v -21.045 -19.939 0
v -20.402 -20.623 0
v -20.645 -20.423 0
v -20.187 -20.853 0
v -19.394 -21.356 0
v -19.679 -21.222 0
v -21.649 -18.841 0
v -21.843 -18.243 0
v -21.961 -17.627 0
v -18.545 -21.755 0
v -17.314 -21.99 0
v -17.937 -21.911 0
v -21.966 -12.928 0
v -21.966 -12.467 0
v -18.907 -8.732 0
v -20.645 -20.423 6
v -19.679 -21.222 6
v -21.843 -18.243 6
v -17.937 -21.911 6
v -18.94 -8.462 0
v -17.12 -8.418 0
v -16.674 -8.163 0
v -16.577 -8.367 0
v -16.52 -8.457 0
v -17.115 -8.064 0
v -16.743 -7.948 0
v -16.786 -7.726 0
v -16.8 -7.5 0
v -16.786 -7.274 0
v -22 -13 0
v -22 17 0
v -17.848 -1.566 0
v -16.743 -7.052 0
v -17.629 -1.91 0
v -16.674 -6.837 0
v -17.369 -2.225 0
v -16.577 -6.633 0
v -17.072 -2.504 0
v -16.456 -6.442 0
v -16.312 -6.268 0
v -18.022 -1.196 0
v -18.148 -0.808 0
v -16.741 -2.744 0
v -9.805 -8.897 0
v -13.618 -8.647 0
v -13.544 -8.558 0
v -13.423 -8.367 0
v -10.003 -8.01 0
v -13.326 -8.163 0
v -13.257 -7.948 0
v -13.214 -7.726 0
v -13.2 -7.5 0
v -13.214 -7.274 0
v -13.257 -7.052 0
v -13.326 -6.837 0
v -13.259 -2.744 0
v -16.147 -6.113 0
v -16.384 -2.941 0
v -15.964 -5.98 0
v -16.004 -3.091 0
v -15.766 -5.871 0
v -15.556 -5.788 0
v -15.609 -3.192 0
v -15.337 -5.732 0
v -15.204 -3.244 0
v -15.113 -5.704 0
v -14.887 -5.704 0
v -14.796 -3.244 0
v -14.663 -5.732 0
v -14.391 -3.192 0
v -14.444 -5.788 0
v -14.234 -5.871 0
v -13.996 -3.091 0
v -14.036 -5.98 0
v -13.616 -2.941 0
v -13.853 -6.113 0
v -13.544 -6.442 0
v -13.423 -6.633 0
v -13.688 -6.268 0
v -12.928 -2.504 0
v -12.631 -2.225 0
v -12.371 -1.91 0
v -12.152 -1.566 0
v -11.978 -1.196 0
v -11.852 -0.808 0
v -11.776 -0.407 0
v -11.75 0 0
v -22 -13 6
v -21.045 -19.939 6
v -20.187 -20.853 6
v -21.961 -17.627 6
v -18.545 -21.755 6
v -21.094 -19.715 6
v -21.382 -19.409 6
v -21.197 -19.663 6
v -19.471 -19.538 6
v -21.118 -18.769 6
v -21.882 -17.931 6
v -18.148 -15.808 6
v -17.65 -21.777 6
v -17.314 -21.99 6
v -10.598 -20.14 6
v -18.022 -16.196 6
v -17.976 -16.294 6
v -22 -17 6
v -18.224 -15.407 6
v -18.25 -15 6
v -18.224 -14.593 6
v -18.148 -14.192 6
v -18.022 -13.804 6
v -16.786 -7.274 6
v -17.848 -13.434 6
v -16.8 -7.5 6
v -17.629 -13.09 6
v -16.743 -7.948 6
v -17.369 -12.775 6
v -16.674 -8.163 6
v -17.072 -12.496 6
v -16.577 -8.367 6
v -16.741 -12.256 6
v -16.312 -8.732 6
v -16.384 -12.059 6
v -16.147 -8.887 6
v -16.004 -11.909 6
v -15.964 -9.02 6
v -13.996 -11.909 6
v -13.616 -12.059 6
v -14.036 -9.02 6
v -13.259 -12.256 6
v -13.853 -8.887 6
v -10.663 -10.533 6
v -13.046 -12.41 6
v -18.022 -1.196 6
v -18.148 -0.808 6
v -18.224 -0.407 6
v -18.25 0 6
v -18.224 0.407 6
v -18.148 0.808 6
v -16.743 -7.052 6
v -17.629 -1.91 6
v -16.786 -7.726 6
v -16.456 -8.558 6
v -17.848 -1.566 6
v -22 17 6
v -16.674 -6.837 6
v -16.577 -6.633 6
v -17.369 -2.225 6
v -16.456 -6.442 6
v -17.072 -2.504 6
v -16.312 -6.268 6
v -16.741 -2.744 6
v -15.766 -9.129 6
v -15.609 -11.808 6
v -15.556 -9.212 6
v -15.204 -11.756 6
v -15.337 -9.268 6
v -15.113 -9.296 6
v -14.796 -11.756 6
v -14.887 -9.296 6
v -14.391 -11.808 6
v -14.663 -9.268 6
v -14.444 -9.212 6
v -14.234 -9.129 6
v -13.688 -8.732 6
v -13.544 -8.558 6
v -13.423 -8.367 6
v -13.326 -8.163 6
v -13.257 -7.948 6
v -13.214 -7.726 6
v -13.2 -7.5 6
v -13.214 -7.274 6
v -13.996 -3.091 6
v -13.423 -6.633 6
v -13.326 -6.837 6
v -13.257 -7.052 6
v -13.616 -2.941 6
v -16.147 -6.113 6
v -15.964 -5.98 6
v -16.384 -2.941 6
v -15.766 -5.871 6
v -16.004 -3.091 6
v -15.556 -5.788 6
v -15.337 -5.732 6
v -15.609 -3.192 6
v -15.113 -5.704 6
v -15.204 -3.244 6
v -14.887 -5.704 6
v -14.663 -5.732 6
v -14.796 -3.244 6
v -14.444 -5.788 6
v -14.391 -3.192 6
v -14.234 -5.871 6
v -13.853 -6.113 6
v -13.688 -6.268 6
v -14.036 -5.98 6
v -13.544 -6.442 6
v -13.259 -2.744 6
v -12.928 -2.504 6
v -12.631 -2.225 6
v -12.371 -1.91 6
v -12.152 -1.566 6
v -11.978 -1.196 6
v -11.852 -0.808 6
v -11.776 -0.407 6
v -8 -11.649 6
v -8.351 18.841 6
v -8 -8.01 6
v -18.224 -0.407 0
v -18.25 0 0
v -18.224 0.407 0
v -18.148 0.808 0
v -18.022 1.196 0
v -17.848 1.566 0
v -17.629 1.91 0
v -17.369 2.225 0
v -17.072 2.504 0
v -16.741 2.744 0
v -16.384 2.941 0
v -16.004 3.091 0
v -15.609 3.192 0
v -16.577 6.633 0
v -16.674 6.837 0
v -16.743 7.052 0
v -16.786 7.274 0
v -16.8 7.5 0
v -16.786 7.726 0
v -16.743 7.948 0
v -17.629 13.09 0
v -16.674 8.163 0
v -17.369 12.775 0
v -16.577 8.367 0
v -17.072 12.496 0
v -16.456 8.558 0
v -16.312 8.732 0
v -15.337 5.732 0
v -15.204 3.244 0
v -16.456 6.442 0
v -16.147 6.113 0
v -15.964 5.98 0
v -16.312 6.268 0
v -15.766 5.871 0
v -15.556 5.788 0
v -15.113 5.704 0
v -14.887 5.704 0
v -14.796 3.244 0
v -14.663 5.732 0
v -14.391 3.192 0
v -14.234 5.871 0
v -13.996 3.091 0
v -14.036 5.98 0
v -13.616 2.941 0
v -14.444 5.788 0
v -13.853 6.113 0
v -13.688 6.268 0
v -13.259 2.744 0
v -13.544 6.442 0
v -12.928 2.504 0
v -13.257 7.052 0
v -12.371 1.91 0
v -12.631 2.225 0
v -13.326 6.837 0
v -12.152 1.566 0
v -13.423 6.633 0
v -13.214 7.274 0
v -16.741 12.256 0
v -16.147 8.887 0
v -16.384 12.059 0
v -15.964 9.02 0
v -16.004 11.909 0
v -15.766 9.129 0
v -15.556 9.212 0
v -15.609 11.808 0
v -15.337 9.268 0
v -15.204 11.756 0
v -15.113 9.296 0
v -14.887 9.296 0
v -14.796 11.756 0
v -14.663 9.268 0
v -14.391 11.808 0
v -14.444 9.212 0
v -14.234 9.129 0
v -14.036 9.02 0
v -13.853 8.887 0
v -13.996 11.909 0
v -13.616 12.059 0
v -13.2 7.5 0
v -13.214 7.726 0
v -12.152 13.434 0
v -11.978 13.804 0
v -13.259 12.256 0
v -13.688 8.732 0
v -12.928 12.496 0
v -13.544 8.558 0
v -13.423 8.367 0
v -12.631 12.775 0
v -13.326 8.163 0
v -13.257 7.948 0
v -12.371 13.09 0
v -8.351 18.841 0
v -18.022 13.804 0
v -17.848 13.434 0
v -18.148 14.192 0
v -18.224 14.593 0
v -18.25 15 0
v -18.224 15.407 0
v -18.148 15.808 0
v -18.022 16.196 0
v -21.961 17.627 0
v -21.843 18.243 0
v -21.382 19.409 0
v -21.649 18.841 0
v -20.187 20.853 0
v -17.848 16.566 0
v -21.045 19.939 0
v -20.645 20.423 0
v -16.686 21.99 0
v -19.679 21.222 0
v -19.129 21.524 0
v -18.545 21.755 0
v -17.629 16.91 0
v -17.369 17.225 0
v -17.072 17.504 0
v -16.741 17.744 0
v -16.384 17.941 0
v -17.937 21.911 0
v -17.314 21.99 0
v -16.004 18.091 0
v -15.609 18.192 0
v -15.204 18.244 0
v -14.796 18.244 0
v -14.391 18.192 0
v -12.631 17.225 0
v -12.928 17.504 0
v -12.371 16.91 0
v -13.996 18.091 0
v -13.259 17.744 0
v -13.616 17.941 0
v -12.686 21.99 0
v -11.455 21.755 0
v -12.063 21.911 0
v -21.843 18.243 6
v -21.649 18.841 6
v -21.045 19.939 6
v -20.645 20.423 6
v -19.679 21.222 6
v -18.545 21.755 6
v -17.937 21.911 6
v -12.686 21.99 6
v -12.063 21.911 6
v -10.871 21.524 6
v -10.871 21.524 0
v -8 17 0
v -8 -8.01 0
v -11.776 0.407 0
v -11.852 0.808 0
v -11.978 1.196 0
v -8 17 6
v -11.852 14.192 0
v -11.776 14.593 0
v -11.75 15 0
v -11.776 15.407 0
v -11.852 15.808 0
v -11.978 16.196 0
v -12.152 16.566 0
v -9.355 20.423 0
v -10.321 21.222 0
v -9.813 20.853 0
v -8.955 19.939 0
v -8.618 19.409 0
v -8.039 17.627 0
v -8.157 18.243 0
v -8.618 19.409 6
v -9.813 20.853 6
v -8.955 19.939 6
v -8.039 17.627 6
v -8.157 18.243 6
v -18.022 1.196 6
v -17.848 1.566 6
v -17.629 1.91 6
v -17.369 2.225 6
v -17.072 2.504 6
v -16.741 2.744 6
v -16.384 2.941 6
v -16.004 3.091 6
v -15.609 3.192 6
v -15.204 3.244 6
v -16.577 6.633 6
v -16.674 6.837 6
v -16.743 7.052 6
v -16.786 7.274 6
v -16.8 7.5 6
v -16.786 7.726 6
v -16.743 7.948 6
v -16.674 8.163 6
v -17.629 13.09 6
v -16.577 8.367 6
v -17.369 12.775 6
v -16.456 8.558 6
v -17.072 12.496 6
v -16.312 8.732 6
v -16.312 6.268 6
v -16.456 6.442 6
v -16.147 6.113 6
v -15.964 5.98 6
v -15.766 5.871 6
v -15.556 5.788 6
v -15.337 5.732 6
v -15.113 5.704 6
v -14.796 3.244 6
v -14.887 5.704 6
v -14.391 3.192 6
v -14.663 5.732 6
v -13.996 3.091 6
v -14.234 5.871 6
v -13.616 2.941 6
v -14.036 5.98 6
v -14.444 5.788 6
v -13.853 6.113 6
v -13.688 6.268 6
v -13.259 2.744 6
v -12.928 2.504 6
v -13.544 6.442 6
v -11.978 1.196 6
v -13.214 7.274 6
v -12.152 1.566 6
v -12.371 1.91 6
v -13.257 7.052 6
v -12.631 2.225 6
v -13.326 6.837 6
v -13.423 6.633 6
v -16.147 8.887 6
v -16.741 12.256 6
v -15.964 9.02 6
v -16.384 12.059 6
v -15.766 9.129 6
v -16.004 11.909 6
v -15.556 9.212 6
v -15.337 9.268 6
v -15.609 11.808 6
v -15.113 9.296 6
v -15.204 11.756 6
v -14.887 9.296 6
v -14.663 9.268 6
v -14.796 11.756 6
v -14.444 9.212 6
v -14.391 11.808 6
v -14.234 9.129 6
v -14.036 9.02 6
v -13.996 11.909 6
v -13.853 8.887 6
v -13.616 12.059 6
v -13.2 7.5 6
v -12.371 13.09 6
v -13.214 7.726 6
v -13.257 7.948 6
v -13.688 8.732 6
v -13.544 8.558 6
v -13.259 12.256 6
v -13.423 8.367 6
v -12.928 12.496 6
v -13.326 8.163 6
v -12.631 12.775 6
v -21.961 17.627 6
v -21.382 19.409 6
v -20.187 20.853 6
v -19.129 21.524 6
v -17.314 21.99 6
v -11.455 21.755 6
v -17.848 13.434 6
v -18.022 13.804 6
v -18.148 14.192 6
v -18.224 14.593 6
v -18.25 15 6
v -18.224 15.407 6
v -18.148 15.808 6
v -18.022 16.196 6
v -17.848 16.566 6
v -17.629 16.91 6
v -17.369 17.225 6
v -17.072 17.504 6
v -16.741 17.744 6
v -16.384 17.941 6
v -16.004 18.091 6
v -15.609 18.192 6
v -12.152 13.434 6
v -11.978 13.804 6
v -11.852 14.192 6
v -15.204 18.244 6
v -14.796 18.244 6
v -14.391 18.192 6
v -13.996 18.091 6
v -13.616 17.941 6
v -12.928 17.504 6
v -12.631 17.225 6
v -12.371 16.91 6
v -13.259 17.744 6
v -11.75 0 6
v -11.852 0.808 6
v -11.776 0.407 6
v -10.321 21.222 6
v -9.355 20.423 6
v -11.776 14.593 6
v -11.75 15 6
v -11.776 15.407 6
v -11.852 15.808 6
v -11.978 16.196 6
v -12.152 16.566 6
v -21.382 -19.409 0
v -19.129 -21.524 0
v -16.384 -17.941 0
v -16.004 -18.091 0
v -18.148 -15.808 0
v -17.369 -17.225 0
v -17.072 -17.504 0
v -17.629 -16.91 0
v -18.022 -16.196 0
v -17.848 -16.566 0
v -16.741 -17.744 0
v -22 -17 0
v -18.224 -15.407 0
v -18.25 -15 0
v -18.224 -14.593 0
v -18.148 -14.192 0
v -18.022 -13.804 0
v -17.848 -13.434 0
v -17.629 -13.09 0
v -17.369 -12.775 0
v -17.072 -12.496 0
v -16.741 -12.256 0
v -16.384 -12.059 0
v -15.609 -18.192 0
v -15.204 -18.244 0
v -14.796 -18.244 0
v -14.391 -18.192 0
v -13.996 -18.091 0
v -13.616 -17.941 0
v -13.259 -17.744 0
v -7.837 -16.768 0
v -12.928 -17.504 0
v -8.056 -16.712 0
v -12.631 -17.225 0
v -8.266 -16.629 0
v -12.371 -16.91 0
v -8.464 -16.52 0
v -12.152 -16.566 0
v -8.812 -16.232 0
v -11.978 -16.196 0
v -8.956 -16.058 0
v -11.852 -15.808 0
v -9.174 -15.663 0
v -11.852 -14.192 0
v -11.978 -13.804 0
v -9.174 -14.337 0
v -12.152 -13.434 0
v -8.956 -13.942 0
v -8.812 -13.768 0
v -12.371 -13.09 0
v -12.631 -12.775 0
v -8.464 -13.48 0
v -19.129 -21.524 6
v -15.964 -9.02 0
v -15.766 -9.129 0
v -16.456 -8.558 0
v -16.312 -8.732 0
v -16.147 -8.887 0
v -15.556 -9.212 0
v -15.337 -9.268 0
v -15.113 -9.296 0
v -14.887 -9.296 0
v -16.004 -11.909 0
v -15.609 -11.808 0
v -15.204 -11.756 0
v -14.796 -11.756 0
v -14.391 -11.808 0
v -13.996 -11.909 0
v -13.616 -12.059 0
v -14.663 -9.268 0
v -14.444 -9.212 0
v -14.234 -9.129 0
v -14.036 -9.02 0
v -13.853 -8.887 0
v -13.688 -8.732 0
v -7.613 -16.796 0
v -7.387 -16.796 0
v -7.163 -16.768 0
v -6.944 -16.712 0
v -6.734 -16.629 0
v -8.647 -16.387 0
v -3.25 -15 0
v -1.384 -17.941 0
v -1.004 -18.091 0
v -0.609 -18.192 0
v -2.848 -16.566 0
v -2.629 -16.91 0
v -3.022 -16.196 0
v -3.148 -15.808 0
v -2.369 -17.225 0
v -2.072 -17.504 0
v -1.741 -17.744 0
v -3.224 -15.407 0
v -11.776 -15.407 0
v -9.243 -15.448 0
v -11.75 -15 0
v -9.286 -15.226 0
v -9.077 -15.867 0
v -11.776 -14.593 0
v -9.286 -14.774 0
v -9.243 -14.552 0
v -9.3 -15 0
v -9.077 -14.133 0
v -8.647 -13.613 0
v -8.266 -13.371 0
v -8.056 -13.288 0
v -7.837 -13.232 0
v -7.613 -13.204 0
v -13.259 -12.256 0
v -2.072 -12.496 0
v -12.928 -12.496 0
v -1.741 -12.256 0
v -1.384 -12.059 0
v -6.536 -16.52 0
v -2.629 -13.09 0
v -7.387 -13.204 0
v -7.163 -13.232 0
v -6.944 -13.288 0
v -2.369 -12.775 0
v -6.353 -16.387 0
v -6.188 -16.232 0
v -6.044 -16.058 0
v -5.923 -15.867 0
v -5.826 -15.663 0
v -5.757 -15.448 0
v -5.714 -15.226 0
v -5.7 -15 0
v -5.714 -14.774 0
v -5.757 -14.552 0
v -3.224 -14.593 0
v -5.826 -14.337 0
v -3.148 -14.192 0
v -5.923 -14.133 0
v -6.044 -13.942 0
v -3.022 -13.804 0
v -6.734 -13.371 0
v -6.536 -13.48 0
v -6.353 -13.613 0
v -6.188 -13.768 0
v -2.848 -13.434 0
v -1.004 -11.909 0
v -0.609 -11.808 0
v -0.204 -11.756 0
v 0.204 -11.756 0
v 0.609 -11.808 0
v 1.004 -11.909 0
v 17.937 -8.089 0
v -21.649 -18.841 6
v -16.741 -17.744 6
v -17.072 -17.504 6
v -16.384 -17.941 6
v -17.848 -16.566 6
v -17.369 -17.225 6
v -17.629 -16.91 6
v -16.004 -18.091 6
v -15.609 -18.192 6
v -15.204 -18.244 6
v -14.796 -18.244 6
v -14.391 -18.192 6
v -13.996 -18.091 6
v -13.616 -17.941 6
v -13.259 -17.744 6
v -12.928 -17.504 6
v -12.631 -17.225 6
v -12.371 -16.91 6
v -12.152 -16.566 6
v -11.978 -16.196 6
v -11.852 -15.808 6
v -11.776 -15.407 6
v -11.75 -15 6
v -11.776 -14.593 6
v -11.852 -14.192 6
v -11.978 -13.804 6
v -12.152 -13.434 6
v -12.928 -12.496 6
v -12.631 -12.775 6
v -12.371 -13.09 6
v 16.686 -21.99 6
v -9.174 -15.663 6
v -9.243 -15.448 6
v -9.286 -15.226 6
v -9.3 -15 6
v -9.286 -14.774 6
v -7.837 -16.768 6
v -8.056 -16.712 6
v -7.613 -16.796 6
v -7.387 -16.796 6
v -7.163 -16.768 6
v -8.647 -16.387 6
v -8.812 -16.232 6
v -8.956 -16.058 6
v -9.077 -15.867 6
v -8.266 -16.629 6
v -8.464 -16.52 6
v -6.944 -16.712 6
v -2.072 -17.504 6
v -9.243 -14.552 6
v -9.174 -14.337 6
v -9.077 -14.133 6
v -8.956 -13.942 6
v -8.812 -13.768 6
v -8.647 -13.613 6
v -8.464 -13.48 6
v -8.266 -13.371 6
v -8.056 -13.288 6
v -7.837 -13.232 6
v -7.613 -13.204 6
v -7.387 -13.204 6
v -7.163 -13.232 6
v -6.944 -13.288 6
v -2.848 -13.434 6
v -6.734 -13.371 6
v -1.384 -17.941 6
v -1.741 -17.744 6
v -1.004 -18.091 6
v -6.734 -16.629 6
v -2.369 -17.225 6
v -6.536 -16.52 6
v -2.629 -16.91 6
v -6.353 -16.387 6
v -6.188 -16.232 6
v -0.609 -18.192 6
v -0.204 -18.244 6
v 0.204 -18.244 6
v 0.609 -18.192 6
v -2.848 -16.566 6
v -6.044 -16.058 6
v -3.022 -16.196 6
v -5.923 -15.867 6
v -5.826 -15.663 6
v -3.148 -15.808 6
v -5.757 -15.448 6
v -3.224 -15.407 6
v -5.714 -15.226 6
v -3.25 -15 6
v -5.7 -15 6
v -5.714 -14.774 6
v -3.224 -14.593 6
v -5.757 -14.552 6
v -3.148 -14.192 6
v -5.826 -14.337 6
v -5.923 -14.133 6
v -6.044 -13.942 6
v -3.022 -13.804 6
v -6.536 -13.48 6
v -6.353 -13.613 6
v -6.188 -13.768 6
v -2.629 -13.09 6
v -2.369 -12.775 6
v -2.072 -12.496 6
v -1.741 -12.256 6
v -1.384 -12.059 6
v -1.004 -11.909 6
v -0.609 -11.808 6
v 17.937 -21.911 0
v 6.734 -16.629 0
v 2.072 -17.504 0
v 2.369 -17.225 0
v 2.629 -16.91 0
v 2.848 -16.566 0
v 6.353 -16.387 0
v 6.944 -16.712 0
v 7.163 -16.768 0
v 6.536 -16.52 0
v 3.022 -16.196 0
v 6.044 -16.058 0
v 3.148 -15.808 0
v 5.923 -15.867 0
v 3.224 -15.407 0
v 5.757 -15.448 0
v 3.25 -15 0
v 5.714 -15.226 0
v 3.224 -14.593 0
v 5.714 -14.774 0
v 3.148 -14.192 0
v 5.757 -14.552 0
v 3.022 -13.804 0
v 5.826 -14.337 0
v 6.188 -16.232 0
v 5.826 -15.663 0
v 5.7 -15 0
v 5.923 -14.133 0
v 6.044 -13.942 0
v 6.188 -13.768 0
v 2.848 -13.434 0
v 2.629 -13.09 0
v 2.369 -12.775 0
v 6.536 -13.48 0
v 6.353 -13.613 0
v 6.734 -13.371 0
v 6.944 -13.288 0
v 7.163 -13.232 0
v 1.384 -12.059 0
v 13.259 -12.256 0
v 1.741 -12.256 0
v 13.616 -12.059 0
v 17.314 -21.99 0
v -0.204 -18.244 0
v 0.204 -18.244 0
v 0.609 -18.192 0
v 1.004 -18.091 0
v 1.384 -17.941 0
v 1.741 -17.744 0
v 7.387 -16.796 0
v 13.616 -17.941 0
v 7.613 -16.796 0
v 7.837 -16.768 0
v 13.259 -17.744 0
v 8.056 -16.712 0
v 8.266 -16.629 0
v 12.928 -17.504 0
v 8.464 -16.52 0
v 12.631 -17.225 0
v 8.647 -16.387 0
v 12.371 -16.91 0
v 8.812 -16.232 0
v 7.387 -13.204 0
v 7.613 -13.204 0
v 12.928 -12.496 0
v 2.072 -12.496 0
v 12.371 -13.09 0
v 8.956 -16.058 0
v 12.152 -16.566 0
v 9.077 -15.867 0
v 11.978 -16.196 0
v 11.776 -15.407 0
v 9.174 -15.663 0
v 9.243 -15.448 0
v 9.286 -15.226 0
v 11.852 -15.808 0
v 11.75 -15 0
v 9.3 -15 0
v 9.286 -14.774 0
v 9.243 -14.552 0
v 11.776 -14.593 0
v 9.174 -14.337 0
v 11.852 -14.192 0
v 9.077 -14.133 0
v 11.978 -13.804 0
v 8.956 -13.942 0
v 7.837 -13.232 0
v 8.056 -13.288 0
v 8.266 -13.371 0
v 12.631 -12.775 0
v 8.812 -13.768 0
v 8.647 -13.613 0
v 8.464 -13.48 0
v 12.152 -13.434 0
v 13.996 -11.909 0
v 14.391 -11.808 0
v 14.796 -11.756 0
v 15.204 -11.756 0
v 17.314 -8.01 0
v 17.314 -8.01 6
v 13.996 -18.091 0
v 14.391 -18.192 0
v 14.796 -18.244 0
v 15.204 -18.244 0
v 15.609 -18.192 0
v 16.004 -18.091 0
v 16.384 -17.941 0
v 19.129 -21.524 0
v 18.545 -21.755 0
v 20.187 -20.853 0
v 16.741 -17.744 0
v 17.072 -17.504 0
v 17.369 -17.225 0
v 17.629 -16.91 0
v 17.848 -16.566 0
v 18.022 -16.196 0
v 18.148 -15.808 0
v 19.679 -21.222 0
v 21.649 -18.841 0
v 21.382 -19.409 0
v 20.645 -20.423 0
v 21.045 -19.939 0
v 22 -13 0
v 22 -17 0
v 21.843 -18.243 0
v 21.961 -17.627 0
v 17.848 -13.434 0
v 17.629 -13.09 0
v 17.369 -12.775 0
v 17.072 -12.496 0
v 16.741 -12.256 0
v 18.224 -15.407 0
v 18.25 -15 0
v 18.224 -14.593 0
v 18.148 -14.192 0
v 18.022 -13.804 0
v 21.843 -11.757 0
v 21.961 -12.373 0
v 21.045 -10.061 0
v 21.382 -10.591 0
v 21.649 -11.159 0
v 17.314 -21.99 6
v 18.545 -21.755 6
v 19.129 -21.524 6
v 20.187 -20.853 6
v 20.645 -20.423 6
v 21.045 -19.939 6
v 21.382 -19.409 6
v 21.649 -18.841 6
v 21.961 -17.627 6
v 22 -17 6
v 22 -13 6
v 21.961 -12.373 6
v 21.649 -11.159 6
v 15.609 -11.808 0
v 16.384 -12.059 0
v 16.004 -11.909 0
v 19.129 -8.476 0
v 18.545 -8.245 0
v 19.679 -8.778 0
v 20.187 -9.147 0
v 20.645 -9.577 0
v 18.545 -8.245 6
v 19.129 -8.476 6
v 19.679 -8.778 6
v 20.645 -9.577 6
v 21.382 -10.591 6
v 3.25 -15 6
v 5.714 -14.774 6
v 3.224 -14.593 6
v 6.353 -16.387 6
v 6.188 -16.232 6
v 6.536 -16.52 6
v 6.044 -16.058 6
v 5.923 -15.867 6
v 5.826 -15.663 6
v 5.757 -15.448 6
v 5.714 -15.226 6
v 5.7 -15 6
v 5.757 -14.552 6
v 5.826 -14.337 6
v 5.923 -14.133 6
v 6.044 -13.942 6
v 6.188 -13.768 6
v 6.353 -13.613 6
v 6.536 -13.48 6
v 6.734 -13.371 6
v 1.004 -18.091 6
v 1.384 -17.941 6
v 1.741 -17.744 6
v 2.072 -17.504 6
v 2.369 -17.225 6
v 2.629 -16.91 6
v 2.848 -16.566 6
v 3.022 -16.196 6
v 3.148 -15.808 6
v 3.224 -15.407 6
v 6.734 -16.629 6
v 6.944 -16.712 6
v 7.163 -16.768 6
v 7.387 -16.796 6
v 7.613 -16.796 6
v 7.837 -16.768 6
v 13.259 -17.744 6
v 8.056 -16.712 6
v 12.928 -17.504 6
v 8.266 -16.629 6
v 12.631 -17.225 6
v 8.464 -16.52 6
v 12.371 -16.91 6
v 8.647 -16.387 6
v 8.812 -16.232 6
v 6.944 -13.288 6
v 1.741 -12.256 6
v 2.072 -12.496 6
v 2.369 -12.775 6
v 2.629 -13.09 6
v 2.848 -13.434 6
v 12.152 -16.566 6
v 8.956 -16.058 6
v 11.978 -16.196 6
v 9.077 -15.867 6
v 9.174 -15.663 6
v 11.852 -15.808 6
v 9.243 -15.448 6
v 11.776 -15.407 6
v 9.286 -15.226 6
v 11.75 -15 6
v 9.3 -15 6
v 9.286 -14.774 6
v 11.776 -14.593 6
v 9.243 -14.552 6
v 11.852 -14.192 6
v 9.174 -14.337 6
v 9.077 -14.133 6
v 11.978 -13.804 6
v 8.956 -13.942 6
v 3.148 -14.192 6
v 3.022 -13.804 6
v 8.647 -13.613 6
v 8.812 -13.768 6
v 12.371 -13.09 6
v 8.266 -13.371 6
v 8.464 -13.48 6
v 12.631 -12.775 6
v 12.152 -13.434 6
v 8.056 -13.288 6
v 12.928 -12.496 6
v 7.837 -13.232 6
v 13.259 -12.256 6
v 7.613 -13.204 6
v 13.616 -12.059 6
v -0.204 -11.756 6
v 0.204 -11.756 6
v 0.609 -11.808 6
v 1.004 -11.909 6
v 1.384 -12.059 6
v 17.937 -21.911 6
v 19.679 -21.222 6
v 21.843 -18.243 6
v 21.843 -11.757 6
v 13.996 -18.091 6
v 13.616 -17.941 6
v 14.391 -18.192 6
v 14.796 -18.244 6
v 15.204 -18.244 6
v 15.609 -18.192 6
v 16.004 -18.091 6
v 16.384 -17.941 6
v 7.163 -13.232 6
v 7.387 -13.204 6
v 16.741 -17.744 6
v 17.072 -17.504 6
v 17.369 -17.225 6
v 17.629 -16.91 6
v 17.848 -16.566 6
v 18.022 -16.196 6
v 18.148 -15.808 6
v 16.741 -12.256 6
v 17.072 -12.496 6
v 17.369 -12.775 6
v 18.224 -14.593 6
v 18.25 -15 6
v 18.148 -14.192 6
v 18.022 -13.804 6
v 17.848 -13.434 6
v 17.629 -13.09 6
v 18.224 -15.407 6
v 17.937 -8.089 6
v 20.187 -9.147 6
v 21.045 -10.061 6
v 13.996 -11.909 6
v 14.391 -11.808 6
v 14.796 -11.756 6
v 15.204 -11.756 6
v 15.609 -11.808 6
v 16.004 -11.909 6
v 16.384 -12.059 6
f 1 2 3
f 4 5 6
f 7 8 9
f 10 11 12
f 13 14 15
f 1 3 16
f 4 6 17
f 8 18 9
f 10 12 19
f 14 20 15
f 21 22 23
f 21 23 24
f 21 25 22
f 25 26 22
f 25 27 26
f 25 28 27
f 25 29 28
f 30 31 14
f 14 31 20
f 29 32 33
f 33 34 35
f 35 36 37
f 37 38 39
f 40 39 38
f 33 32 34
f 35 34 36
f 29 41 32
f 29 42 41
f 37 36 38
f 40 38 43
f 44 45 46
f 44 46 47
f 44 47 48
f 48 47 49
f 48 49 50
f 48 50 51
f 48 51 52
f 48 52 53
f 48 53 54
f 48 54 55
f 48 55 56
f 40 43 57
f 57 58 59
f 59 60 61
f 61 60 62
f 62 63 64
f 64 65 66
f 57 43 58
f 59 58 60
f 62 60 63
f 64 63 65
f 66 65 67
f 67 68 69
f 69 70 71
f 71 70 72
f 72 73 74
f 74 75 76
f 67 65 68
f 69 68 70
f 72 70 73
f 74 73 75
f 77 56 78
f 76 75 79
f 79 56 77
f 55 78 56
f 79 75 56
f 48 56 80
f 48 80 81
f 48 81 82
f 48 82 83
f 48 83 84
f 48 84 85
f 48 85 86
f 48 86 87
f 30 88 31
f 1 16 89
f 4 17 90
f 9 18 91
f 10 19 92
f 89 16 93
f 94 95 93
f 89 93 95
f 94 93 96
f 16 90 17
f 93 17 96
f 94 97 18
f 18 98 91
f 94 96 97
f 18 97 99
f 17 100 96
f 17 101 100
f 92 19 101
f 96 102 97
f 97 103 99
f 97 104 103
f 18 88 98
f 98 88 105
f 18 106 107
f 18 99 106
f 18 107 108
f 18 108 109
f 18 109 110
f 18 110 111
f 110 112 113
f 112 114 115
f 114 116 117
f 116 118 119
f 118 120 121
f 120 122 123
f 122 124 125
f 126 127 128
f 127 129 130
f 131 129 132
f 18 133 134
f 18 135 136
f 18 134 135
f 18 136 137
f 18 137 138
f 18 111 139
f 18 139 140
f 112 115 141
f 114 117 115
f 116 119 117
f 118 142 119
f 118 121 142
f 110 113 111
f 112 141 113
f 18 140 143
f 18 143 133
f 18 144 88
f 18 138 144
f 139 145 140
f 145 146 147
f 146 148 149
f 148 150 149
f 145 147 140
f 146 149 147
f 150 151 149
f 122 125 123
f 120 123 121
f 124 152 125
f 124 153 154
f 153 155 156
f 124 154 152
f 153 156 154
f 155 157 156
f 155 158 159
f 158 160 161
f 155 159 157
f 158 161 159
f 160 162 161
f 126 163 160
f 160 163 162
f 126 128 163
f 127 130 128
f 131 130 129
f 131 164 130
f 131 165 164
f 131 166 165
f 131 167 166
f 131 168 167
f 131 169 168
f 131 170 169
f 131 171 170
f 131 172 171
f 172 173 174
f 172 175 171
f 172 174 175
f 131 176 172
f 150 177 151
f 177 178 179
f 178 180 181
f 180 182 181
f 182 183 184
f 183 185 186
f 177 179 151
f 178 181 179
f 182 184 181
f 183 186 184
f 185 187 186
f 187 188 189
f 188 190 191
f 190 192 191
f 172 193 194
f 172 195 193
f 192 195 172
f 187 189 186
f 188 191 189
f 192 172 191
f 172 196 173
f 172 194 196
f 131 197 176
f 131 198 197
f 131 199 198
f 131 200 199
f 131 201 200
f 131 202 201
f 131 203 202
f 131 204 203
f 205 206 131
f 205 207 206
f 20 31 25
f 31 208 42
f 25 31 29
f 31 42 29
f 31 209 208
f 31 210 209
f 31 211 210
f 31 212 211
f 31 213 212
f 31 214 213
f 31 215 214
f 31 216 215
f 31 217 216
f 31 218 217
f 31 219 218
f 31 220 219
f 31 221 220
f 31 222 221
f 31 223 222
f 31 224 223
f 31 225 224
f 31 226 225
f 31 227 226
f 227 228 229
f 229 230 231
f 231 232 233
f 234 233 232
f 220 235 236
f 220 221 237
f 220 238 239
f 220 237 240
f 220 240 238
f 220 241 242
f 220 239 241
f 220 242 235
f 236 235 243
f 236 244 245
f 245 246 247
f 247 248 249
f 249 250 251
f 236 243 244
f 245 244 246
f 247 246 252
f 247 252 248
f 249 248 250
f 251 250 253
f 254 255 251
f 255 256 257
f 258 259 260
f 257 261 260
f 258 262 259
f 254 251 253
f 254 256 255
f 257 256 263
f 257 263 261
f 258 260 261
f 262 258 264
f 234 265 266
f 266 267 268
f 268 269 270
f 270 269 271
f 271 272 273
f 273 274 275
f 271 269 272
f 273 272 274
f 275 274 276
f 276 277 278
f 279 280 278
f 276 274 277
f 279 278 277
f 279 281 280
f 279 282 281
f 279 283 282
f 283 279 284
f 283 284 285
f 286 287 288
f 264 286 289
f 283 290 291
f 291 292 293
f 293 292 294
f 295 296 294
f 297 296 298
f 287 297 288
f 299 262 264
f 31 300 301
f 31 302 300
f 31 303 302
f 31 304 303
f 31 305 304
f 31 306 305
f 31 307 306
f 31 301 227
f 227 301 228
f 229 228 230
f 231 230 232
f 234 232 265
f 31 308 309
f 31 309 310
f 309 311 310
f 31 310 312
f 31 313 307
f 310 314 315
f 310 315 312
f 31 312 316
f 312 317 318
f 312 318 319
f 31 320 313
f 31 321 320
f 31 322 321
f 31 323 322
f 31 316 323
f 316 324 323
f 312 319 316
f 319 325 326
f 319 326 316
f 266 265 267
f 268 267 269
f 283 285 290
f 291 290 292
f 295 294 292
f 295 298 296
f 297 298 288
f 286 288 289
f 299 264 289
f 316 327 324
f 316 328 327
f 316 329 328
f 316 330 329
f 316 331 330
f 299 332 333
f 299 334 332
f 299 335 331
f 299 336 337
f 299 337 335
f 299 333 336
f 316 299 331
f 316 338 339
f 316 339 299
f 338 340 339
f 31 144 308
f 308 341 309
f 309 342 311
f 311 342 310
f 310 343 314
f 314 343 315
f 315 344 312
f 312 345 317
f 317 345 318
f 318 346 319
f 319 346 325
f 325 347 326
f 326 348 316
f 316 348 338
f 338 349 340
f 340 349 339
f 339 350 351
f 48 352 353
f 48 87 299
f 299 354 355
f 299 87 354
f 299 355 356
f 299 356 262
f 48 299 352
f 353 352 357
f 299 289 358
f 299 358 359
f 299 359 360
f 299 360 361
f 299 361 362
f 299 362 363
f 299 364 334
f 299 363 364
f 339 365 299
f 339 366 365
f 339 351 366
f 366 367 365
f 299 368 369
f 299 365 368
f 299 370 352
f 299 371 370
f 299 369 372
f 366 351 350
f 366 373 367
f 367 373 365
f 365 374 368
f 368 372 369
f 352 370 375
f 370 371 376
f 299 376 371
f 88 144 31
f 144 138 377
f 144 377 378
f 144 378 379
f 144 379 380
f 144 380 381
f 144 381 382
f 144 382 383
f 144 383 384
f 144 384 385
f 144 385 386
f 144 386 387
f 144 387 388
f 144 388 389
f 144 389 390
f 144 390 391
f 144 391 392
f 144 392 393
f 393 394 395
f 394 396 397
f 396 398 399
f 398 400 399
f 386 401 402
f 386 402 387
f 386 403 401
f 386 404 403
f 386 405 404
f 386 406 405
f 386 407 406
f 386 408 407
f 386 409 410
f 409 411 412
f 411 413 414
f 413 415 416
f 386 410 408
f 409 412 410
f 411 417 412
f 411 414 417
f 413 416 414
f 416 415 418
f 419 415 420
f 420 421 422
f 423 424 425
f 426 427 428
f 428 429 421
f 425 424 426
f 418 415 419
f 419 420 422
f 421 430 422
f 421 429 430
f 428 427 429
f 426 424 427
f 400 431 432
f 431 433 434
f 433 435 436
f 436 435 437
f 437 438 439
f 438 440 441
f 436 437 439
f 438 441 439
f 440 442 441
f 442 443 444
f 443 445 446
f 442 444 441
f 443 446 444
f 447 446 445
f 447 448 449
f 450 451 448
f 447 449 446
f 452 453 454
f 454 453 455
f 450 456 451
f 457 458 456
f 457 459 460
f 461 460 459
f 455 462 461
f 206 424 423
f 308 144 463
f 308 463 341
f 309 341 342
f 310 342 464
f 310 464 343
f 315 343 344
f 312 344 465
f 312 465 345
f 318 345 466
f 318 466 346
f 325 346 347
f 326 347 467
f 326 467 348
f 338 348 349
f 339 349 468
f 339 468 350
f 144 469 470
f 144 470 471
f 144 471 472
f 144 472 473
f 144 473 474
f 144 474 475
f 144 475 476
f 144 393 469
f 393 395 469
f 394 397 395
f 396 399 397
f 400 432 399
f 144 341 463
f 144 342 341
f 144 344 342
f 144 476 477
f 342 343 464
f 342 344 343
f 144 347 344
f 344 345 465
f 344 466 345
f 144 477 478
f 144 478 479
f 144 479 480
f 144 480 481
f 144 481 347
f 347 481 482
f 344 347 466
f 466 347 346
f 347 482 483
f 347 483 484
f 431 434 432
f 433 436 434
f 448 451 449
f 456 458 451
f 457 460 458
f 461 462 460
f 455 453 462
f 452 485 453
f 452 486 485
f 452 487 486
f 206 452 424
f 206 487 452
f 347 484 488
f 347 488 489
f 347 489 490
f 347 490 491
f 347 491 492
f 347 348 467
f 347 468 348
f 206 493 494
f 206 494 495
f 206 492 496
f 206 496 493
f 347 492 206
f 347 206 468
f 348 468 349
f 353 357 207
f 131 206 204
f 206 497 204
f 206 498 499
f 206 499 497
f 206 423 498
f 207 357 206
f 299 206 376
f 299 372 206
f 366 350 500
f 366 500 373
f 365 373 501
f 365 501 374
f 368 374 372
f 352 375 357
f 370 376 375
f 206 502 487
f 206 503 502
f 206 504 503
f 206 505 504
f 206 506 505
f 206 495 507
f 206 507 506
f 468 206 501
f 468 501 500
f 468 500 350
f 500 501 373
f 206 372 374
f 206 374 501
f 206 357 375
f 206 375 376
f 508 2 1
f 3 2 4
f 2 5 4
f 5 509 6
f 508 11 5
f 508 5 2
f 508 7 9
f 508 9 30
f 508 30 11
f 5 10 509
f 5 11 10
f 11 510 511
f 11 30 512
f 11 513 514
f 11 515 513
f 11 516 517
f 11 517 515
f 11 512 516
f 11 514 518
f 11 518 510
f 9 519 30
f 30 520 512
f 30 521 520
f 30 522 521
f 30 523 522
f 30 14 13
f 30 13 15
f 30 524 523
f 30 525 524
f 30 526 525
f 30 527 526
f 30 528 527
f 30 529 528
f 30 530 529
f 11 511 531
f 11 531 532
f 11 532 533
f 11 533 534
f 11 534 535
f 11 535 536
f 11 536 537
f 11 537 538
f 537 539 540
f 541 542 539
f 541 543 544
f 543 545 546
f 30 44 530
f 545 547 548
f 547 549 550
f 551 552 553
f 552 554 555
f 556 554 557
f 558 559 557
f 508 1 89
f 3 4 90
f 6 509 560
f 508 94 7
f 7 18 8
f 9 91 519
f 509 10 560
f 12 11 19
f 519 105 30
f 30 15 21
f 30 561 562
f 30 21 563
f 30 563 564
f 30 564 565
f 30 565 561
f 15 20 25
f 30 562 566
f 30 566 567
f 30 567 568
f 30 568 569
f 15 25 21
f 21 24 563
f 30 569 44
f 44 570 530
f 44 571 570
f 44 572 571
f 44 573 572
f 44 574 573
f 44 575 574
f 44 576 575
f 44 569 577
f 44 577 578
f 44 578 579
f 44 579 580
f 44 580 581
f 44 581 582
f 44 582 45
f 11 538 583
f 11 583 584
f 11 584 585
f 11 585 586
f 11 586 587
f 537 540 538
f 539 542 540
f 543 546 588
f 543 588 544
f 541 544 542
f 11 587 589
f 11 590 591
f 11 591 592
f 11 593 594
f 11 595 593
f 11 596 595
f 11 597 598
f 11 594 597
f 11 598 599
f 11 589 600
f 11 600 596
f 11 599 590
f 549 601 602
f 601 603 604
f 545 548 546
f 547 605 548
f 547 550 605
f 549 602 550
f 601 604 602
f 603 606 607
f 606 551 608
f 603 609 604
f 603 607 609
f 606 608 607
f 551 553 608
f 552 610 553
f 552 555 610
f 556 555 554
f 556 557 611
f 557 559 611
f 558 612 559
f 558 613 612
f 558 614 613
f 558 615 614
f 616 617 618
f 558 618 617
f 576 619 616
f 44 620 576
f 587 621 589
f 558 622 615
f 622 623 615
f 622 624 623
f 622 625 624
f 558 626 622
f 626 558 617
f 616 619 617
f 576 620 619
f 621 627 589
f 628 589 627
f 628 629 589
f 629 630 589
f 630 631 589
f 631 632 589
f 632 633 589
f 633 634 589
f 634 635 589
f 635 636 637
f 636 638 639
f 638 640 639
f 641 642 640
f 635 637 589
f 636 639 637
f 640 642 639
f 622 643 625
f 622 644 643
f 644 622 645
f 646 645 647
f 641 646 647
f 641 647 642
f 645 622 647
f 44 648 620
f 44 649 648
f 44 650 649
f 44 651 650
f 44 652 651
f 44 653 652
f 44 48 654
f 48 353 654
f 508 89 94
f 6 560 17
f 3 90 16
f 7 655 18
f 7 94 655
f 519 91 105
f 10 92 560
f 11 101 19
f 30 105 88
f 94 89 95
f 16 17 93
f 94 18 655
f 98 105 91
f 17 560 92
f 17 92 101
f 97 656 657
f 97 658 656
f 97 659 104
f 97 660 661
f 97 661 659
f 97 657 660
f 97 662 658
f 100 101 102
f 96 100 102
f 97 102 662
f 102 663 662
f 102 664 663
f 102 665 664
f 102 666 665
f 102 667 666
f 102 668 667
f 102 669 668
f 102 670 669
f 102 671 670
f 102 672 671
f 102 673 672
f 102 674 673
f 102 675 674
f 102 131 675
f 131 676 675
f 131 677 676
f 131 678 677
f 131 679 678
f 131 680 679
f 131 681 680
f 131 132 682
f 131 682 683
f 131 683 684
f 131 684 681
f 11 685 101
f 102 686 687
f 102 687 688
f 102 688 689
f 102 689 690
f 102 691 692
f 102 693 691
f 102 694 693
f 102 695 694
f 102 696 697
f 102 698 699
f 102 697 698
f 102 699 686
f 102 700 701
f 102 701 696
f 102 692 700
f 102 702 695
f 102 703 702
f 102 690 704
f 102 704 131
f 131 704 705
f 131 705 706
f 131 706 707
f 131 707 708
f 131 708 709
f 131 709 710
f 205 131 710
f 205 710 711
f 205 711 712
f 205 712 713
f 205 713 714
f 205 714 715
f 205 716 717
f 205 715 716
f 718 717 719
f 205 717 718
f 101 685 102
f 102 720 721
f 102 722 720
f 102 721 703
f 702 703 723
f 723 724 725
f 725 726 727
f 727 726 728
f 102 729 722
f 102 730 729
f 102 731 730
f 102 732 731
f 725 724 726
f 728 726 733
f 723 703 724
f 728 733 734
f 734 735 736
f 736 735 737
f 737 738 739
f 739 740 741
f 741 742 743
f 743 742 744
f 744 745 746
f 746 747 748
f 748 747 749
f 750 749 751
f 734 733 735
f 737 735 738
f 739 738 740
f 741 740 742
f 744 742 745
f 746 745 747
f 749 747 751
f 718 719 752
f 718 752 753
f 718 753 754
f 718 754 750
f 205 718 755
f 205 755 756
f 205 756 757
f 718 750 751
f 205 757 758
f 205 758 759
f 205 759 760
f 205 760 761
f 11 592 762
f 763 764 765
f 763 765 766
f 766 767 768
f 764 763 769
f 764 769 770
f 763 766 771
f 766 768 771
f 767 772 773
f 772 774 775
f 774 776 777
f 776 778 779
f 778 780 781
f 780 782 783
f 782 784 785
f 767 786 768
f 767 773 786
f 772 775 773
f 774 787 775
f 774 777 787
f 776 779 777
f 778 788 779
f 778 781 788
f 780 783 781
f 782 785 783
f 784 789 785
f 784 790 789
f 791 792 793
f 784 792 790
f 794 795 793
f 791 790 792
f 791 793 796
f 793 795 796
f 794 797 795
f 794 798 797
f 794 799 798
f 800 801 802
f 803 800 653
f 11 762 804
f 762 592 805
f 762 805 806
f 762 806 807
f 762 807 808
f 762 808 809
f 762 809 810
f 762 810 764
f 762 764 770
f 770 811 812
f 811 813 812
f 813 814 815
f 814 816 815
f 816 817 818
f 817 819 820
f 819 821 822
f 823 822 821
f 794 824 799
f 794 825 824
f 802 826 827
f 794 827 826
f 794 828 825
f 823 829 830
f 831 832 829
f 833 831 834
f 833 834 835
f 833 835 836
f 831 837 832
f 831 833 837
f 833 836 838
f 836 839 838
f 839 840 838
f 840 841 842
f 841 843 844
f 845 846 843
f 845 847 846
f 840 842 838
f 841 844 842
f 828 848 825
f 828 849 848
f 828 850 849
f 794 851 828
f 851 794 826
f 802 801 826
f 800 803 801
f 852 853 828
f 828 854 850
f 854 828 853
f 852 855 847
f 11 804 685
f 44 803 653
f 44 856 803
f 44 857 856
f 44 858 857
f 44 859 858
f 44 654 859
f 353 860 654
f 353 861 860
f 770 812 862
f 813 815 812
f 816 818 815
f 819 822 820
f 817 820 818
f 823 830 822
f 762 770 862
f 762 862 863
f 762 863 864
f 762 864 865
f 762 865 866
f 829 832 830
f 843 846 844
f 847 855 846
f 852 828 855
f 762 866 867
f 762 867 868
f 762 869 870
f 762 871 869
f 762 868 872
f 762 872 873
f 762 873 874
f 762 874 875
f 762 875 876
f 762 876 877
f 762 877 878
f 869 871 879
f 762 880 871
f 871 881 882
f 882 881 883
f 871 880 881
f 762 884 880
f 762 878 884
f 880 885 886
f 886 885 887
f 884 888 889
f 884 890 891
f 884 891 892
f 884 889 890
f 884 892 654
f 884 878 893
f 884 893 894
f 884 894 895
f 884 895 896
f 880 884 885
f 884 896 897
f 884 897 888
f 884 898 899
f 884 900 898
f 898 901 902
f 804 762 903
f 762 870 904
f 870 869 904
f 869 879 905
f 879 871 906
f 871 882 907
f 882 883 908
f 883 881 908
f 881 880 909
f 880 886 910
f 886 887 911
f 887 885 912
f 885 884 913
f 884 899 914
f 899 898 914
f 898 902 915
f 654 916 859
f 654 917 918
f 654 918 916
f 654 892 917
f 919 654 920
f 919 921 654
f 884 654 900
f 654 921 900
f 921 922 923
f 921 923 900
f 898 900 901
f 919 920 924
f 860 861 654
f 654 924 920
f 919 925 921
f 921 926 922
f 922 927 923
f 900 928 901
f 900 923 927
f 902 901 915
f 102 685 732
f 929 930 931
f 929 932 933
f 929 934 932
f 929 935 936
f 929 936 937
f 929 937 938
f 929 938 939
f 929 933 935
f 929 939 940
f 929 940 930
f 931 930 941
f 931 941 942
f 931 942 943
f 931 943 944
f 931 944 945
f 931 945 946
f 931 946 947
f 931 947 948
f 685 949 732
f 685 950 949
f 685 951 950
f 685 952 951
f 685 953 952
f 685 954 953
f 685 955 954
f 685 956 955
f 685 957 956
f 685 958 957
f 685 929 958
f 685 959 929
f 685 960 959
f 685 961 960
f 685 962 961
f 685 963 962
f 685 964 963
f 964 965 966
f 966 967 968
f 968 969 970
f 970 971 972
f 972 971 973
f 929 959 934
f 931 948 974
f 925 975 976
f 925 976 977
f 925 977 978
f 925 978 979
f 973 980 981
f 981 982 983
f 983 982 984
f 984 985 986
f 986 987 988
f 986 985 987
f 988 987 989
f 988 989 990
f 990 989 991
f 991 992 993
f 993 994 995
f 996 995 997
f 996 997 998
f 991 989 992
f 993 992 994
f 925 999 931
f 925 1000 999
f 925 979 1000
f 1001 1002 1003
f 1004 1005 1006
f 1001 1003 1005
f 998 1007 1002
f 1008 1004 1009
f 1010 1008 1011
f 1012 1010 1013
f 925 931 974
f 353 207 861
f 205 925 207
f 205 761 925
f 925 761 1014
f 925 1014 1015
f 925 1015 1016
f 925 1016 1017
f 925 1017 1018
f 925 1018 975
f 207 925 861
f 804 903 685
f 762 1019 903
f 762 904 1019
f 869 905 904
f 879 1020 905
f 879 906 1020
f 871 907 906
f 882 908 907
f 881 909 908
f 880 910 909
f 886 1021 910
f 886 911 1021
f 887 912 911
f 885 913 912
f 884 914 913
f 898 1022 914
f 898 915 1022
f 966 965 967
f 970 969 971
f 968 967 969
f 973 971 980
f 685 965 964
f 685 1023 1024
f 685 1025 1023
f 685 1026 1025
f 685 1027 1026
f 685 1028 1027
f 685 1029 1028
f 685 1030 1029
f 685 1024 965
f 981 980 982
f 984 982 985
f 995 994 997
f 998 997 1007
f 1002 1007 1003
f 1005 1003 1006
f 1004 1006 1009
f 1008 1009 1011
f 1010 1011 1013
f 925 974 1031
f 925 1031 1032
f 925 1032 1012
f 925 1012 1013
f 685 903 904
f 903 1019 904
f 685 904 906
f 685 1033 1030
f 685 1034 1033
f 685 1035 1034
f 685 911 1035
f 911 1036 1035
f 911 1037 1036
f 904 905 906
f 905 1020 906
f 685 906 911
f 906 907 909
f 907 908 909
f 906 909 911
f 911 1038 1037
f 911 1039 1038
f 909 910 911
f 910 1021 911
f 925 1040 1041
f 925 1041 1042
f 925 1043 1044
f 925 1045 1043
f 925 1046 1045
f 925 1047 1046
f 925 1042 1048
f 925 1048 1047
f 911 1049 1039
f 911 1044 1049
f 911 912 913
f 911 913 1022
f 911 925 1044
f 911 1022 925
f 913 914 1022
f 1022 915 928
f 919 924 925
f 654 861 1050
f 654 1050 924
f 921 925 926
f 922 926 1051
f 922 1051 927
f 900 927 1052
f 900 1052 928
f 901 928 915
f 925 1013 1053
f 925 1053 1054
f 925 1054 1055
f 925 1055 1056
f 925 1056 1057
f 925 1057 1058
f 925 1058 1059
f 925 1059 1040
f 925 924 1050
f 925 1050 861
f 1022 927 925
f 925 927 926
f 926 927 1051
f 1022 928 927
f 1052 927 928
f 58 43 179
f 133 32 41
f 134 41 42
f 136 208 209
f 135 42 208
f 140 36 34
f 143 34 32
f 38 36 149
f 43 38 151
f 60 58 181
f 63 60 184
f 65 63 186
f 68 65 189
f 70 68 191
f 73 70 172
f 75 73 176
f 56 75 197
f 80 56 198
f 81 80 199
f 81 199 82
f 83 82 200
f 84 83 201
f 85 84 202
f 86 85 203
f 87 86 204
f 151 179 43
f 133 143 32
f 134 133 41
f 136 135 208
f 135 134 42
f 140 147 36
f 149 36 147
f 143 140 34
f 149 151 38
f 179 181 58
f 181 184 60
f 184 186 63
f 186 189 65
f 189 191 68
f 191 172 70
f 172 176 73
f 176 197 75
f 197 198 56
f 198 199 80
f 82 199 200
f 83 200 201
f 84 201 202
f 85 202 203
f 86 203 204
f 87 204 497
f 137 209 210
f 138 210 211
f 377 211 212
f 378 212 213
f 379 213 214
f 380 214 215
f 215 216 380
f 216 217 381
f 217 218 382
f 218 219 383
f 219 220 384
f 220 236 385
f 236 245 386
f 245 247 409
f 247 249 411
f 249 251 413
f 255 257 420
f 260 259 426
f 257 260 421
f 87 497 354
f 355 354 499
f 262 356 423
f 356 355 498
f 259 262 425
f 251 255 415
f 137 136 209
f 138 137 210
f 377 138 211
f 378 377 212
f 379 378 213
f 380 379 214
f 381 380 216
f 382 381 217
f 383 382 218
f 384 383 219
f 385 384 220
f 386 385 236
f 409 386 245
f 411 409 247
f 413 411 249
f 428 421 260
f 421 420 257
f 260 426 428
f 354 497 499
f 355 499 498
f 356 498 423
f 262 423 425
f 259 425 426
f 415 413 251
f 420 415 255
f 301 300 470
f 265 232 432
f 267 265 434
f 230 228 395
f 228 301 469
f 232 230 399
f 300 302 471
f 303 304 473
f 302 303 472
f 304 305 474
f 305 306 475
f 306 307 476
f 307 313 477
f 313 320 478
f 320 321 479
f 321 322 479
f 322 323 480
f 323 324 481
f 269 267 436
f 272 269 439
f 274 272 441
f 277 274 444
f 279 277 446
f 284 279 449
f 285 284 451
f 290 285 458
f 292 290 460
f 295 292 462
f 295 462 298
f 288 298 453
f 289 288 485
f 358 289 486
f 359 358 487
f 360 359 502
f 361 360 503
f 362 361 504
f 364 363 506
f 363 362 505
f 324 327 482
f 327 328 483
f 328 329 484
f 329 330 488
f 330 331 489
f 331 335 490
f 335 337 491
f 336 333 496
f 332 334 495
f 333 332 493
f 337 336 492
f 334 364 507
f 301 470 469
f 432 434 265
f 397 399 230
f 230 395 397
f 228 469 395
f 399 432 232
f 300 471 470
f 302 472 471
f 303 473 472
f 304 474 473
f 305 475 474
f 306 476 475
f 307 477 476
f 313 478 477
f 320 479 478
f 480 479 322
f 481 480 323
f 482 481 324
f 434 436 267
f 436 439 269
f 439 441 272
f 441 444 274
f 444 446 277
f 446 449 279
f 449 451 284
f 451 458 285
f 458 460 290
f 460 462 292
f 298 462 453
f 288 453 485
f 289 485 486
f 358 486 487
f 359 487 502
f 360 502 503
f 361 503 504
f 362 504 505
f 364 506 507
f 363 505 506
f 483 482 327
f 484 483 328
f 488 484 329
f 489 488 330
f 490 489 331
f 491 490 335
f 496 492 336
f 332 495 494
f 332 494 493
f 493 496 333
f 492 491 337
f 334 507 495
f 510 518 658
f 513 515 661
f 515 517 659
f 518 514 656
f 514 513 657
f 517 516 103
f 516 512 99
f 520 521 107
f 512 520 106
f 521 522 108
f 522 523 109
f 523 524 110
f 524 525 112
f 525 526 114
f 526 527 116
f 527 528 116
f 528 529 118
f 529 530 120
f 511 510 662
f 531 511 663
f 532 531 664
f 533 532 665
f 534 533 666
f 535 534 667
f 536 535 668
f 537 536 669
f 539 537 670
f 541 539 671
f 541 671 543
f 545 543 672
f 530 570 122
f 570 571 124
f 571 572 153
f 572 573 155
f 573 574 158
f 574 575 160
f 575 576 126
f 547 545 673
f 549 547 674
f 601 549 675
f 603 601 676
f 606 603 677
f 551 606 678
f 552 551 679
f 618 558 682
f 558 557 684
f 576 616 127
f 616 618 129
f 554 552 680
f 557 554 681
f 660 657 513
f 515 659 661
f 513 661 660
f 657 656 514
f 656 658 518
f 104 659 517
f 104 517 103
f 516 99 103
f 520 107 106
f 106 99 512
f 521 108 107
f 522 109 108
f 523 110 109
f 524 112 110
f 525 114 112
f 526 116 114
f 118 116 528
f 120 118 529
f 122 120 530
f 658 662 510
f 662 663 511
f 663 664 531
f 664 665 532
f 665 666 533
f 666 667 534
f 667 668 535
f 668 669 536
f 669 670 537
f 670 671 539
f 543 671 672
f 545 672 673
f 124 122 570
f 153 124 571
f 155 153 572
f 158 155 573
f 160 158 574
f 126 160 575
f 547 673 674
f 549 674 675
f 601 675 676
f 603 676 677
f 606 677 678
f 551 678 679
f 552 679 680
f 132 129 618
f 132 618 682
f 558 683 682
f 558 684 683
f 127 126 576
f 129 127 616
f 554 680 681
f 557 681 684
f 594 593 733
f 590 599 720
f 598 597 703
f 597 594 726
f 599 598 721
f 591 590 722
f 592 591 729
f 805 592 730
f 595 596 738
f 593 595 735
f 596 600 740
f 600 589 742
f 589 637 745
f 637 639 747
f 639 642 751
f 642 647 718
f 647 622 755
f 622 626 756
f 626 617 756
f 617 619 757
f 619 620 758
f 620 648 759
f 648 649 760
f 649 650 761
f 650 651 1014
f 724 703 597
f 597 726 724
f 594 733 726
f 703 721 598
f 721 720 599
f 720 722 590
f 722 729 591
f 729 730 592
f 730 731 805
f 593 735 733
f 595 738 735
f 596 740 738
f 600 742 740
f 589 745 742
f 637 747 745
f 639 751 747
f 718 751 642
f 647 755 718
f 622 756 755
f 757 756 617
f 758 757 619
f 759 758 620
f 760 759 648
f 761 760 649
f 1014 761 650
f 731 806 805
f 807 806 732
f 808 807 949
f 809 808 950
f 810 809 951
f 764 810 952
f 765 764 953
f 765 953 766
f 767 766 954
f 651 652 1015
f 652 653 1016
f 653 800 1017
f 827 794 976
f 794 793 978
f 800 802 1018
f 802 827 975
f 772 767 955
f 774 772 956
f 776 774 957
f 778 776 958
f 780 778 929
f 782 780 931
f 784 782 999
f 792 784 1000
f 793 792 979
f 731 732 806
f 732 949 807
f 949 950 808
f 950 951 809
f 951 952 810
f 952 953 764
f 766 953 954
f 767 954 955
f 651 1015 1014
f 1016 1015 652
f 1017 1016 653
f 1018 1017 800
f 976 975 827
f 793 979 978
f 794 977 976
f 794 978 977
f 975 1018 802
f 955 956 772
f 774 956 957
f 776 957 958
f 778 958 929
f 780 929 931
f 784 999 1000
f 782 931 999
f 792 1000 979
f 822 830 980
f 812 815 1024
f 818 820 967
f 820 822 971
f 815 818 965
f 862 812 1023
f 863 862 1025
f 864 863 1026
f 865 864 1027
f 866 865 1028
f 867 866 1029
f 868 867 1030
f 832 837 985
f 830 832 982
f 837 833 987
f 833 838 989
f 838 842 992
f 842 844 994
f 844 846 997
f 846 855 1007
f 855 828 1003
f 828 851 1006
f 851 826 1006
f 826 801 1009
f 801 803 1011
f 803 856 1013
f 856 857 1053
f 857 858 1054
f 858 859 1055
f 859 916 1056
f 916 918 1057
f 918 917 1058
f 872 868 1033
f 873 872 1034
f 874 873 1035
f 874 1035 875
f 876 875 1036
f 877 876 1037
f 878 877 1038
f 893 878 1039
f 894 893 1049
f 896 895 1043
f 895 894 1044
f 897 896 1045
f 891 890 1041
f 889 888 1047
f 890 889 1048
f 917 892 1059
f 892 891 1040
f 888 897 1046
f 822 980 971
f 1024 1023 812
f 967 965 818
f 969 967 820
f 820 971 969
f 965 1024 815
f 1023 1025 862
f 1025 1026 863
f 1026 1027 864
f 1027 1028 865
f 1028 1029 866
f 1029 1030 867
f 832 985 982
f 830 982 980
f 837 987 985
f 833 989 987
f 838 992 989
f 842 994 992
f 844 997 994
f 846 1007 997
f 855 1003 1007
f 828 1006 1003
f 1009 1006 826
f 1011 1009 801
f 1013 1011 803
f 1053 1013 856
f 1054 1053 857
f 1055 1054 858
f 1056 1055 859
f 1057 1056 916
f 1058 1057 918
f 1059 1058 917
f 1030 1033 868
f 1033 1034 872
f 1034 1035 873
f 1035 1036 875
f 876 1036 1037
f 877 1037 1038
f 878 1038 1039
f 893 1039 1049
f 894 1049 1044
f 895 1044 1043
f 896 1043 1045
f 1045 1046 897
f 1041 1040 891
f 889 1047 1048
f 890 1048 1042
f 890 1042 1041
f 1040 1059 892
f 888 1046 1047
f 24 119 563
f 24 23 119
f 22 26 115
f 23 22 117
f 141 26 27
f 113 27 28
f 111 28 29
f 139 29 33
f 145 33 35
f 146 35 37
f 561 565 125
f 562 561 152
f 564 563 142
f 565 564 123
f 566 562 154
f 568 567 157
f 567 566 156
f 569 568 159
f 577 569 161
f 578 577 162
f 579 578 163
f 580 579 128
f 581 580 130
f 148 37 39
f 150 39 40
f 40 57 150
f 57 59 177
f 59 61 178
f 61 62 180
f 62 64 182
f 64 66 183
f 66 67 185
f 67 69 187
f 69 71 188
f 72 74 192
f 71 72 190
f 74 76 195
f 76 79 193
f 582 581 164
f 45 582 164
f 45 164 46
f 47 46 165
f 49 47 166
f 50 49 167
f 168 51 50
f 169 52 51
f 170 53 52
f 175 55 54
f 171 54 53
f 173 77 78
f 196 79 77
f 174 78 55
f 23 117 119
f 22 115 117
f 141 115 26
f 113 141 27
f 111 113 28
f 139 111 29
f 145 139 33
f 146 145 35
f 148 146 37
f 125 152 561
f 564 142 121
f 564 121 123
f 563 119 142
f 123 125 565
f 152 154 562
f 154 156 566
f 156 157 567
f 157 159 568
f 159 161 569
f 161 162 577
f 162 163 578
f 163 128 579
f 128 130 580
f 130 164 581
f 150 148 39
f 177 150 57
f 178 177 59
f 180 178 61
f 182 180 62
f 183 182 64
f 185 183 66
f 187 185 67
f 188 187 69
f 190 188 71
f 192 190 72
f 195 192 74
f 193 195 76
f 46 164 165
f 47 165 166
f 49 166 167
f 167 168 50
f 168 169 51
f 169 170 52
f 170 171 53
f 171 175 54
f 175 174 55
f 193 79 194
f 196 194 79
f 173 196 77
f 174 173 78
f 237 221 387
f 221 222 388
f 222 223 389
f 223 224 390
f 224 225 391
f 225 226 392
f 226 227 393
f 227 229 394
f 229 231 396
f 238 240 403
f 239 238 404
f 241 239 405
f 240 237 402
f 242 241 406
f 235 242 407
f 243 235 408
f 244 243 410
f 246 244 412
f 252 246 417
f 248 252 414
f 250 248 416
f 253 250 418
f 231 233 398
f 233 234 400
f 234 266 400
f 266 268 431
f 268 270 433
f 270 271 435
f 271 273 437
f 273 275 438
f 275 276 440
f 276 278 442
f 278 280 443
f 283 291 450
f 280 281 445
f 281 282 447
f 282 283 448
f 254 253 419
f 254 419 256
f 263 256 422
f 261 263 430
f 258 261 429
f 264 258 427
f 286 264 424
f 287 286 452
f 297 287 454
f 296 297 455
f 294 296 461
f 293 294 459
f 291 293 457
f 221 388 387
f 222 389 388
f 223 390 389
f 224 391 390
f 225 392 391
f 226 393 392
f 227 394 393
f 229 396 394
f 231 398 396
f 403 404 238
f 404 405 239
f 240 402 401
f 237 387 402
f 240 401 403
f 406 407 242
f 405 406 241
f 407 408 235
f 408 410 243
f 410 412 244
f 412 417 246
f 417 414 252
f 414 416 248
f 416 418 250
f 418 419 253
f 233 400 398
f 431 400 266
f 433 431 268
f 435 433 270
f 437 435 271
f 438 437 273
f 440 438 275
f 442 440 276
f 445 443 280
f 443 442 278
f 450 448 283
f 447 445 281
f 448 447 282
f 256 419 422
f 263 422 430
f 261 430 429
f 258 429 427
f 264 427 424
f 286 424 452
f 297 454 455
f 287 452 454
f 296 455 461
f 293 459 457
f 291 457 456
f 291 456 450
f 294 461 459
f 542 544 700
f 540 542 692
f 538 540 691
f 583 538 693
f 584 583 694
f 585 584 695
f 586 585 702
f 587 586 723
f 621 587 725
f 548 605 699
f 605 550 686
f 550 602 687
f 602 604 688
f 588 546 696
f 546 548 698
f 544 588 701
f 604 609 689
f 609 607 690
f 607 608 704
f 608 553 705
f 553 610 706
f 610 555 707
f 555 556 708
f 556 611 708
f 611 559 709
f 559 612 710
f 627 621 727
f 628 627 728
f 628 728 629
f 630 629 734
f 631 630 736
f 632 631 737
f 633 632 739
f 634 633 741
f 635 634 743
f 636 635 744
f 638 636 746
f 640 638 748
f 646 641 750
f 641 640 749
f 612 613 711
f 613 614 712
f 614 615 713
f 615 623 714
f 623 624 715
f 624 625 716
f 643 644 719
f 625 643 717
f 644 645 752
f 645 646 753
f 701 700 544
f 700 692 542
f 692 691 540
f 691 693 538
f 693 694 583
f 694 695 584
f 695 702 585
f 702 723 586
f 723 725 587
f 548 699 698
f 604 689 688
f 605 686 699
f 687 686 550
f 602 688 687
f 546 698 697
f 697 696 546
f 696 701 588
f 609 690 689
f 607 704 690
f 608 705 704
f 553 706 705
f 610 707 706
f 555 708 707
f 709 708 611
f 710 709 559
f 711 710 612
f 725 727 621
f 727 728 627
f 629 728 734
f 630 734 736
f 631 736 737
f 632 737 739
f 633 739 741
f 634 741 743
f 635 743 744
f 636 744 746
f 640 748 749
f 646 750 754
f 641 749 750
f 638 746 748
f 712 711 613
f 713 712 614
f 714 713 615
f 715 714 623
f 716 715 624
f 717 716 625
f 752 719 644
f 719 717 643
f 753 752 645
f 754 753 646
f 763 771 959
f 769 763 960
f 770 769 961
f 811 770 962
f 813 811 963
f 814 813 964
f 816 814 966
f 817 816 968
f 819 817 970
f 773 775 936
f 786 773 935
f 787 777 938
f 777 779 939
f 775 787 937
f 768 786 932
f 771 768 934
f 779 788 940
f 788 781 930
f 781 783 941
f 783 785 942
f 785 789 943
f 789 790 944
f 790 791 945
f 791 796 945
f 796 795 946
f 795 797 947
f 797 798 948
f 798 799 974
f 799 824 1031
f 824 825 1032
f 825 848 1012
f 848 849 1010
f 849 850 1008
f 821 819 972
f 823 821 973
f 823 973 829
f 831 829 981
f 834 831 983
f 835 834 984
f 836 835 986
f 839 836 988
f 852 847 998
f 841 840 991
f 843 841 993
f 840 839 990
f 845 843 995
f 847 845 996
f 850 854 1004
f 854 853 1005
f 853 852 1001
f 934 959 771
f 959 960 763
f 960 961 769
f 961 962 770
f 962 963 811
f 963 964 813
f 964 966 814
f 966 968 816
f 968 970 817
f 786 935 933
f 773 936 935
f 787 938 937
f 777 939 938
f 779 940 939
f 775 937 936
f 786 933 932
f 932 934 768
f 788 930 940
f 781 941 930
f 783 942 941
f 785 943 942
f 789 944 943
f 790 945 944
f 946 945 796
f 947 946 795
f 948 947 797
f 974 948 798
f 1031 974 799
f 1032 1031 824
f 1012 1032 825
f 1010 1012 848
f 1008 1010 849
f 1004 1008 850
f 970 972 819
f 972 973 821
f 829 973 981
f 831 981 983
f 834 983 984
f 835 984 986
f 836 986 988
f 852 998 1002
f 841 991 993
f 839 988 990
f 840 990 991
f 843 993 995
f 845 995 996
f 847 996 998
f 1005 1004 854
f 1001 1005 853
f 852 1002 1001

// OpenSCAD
$fn = 50;

difference() {
	union() {
		translate(v = [-15.0, 0, 0]) {
			hull() {
				translate(v = [-2.0, 17.0, 0]) {
					cylinder(h = 6, r = 5);
				}
				translate(v = [2.0, 17.0, 0]) {
					cylinder(h = 6, r = 5);
				}
				translate(v = [-2.0, -17.0, 0]) {
					cylinder(h = 6, r = 5);
				}
				translate(v = [2.0, -17.0, 0]) {
					cylinder(h = 6, r = 5);
				}
			}
		}
		translate(v = [0, -15.0, 0]) {
			hull() {
				translate(v = [-17.0, 2.0, 0]) {
					cylinder(h = 6, r = 5);
				}
				translate(v = [17.0, 2.0, 0]) {
					cylinder(h = 6, r = 5);
				}
				translate(v = [-17.0, -2.0, 0]) {
					cylinder(h = 6, r = 5);
				}
				translate(v = [17.0, -2.0, 0]) {
					cylinder(h = 6, r = 5);
				}
			}
		}
	}
	union() {
		#translate(v = [-15.0, -15.0, 0]) {
			cylinder(h = 6, r = 3.25);
		}
		#translate(v = [-15.0, 0.0, 0]) {
			cylinder(h = 6, r = 3.25);
		}
		#translate(v = [-15.0, 15.0, 0]) {
			cylinder(h = 6, r = 3.25);
		}
		#translate(v = [-15.0, -15.0, 0]) {
			cylinder(h = 6, r = 3.25);
		}
		#translate(v = [0.0, -15.0, 0]) {
			cylinder(h = 6, r = 3.25);
		}
		#translate(v = [15.0, -15.0, 0]) {
			cylinder(h = 6, r = 3.25);
		}
		#translate(v = [-15.0, -15.0, 0]) {
			cylinder(h = 6, r = 1.8);
		}
		#translate(v = [-15.0, -7.5, 0]) {
			cylinder(h = 6, r = 1.8);
		}
		#translate(v = [-15.0, 0.0, 0]) {
			cylinder(h = 6, r = 1.8);
		}
		#translate(v = [-15.0, 7.5, 0]) {
			cylinder(h = 6, r = 1.8);
		}
		#translate(v = [-15.0, 15.0, 0]) {
			cylinder(h = 6, r = 1.8);
		}
		#translate(v = [-15.0, -15.0, 0]) {
			cylinder(h = 6, r = 1.8);
		}
		#translate(v = [-7.5, -15.0, 0]) {
			cylinder(h = 6, r = 1.8);
		}
		#translate(v = [0.0, -15.0, 0]) {
			cylinder(h = 6, r = 1.8);
		}
		#translate(v = [7.5, -15.0, 0]) {
			cylinder(h = 6, r = 1.8);
		}
		#translate(v = [15.0, -15.0, 0]) {
			cylinder(h = 6, r = 1.8);
		}
	}
}
